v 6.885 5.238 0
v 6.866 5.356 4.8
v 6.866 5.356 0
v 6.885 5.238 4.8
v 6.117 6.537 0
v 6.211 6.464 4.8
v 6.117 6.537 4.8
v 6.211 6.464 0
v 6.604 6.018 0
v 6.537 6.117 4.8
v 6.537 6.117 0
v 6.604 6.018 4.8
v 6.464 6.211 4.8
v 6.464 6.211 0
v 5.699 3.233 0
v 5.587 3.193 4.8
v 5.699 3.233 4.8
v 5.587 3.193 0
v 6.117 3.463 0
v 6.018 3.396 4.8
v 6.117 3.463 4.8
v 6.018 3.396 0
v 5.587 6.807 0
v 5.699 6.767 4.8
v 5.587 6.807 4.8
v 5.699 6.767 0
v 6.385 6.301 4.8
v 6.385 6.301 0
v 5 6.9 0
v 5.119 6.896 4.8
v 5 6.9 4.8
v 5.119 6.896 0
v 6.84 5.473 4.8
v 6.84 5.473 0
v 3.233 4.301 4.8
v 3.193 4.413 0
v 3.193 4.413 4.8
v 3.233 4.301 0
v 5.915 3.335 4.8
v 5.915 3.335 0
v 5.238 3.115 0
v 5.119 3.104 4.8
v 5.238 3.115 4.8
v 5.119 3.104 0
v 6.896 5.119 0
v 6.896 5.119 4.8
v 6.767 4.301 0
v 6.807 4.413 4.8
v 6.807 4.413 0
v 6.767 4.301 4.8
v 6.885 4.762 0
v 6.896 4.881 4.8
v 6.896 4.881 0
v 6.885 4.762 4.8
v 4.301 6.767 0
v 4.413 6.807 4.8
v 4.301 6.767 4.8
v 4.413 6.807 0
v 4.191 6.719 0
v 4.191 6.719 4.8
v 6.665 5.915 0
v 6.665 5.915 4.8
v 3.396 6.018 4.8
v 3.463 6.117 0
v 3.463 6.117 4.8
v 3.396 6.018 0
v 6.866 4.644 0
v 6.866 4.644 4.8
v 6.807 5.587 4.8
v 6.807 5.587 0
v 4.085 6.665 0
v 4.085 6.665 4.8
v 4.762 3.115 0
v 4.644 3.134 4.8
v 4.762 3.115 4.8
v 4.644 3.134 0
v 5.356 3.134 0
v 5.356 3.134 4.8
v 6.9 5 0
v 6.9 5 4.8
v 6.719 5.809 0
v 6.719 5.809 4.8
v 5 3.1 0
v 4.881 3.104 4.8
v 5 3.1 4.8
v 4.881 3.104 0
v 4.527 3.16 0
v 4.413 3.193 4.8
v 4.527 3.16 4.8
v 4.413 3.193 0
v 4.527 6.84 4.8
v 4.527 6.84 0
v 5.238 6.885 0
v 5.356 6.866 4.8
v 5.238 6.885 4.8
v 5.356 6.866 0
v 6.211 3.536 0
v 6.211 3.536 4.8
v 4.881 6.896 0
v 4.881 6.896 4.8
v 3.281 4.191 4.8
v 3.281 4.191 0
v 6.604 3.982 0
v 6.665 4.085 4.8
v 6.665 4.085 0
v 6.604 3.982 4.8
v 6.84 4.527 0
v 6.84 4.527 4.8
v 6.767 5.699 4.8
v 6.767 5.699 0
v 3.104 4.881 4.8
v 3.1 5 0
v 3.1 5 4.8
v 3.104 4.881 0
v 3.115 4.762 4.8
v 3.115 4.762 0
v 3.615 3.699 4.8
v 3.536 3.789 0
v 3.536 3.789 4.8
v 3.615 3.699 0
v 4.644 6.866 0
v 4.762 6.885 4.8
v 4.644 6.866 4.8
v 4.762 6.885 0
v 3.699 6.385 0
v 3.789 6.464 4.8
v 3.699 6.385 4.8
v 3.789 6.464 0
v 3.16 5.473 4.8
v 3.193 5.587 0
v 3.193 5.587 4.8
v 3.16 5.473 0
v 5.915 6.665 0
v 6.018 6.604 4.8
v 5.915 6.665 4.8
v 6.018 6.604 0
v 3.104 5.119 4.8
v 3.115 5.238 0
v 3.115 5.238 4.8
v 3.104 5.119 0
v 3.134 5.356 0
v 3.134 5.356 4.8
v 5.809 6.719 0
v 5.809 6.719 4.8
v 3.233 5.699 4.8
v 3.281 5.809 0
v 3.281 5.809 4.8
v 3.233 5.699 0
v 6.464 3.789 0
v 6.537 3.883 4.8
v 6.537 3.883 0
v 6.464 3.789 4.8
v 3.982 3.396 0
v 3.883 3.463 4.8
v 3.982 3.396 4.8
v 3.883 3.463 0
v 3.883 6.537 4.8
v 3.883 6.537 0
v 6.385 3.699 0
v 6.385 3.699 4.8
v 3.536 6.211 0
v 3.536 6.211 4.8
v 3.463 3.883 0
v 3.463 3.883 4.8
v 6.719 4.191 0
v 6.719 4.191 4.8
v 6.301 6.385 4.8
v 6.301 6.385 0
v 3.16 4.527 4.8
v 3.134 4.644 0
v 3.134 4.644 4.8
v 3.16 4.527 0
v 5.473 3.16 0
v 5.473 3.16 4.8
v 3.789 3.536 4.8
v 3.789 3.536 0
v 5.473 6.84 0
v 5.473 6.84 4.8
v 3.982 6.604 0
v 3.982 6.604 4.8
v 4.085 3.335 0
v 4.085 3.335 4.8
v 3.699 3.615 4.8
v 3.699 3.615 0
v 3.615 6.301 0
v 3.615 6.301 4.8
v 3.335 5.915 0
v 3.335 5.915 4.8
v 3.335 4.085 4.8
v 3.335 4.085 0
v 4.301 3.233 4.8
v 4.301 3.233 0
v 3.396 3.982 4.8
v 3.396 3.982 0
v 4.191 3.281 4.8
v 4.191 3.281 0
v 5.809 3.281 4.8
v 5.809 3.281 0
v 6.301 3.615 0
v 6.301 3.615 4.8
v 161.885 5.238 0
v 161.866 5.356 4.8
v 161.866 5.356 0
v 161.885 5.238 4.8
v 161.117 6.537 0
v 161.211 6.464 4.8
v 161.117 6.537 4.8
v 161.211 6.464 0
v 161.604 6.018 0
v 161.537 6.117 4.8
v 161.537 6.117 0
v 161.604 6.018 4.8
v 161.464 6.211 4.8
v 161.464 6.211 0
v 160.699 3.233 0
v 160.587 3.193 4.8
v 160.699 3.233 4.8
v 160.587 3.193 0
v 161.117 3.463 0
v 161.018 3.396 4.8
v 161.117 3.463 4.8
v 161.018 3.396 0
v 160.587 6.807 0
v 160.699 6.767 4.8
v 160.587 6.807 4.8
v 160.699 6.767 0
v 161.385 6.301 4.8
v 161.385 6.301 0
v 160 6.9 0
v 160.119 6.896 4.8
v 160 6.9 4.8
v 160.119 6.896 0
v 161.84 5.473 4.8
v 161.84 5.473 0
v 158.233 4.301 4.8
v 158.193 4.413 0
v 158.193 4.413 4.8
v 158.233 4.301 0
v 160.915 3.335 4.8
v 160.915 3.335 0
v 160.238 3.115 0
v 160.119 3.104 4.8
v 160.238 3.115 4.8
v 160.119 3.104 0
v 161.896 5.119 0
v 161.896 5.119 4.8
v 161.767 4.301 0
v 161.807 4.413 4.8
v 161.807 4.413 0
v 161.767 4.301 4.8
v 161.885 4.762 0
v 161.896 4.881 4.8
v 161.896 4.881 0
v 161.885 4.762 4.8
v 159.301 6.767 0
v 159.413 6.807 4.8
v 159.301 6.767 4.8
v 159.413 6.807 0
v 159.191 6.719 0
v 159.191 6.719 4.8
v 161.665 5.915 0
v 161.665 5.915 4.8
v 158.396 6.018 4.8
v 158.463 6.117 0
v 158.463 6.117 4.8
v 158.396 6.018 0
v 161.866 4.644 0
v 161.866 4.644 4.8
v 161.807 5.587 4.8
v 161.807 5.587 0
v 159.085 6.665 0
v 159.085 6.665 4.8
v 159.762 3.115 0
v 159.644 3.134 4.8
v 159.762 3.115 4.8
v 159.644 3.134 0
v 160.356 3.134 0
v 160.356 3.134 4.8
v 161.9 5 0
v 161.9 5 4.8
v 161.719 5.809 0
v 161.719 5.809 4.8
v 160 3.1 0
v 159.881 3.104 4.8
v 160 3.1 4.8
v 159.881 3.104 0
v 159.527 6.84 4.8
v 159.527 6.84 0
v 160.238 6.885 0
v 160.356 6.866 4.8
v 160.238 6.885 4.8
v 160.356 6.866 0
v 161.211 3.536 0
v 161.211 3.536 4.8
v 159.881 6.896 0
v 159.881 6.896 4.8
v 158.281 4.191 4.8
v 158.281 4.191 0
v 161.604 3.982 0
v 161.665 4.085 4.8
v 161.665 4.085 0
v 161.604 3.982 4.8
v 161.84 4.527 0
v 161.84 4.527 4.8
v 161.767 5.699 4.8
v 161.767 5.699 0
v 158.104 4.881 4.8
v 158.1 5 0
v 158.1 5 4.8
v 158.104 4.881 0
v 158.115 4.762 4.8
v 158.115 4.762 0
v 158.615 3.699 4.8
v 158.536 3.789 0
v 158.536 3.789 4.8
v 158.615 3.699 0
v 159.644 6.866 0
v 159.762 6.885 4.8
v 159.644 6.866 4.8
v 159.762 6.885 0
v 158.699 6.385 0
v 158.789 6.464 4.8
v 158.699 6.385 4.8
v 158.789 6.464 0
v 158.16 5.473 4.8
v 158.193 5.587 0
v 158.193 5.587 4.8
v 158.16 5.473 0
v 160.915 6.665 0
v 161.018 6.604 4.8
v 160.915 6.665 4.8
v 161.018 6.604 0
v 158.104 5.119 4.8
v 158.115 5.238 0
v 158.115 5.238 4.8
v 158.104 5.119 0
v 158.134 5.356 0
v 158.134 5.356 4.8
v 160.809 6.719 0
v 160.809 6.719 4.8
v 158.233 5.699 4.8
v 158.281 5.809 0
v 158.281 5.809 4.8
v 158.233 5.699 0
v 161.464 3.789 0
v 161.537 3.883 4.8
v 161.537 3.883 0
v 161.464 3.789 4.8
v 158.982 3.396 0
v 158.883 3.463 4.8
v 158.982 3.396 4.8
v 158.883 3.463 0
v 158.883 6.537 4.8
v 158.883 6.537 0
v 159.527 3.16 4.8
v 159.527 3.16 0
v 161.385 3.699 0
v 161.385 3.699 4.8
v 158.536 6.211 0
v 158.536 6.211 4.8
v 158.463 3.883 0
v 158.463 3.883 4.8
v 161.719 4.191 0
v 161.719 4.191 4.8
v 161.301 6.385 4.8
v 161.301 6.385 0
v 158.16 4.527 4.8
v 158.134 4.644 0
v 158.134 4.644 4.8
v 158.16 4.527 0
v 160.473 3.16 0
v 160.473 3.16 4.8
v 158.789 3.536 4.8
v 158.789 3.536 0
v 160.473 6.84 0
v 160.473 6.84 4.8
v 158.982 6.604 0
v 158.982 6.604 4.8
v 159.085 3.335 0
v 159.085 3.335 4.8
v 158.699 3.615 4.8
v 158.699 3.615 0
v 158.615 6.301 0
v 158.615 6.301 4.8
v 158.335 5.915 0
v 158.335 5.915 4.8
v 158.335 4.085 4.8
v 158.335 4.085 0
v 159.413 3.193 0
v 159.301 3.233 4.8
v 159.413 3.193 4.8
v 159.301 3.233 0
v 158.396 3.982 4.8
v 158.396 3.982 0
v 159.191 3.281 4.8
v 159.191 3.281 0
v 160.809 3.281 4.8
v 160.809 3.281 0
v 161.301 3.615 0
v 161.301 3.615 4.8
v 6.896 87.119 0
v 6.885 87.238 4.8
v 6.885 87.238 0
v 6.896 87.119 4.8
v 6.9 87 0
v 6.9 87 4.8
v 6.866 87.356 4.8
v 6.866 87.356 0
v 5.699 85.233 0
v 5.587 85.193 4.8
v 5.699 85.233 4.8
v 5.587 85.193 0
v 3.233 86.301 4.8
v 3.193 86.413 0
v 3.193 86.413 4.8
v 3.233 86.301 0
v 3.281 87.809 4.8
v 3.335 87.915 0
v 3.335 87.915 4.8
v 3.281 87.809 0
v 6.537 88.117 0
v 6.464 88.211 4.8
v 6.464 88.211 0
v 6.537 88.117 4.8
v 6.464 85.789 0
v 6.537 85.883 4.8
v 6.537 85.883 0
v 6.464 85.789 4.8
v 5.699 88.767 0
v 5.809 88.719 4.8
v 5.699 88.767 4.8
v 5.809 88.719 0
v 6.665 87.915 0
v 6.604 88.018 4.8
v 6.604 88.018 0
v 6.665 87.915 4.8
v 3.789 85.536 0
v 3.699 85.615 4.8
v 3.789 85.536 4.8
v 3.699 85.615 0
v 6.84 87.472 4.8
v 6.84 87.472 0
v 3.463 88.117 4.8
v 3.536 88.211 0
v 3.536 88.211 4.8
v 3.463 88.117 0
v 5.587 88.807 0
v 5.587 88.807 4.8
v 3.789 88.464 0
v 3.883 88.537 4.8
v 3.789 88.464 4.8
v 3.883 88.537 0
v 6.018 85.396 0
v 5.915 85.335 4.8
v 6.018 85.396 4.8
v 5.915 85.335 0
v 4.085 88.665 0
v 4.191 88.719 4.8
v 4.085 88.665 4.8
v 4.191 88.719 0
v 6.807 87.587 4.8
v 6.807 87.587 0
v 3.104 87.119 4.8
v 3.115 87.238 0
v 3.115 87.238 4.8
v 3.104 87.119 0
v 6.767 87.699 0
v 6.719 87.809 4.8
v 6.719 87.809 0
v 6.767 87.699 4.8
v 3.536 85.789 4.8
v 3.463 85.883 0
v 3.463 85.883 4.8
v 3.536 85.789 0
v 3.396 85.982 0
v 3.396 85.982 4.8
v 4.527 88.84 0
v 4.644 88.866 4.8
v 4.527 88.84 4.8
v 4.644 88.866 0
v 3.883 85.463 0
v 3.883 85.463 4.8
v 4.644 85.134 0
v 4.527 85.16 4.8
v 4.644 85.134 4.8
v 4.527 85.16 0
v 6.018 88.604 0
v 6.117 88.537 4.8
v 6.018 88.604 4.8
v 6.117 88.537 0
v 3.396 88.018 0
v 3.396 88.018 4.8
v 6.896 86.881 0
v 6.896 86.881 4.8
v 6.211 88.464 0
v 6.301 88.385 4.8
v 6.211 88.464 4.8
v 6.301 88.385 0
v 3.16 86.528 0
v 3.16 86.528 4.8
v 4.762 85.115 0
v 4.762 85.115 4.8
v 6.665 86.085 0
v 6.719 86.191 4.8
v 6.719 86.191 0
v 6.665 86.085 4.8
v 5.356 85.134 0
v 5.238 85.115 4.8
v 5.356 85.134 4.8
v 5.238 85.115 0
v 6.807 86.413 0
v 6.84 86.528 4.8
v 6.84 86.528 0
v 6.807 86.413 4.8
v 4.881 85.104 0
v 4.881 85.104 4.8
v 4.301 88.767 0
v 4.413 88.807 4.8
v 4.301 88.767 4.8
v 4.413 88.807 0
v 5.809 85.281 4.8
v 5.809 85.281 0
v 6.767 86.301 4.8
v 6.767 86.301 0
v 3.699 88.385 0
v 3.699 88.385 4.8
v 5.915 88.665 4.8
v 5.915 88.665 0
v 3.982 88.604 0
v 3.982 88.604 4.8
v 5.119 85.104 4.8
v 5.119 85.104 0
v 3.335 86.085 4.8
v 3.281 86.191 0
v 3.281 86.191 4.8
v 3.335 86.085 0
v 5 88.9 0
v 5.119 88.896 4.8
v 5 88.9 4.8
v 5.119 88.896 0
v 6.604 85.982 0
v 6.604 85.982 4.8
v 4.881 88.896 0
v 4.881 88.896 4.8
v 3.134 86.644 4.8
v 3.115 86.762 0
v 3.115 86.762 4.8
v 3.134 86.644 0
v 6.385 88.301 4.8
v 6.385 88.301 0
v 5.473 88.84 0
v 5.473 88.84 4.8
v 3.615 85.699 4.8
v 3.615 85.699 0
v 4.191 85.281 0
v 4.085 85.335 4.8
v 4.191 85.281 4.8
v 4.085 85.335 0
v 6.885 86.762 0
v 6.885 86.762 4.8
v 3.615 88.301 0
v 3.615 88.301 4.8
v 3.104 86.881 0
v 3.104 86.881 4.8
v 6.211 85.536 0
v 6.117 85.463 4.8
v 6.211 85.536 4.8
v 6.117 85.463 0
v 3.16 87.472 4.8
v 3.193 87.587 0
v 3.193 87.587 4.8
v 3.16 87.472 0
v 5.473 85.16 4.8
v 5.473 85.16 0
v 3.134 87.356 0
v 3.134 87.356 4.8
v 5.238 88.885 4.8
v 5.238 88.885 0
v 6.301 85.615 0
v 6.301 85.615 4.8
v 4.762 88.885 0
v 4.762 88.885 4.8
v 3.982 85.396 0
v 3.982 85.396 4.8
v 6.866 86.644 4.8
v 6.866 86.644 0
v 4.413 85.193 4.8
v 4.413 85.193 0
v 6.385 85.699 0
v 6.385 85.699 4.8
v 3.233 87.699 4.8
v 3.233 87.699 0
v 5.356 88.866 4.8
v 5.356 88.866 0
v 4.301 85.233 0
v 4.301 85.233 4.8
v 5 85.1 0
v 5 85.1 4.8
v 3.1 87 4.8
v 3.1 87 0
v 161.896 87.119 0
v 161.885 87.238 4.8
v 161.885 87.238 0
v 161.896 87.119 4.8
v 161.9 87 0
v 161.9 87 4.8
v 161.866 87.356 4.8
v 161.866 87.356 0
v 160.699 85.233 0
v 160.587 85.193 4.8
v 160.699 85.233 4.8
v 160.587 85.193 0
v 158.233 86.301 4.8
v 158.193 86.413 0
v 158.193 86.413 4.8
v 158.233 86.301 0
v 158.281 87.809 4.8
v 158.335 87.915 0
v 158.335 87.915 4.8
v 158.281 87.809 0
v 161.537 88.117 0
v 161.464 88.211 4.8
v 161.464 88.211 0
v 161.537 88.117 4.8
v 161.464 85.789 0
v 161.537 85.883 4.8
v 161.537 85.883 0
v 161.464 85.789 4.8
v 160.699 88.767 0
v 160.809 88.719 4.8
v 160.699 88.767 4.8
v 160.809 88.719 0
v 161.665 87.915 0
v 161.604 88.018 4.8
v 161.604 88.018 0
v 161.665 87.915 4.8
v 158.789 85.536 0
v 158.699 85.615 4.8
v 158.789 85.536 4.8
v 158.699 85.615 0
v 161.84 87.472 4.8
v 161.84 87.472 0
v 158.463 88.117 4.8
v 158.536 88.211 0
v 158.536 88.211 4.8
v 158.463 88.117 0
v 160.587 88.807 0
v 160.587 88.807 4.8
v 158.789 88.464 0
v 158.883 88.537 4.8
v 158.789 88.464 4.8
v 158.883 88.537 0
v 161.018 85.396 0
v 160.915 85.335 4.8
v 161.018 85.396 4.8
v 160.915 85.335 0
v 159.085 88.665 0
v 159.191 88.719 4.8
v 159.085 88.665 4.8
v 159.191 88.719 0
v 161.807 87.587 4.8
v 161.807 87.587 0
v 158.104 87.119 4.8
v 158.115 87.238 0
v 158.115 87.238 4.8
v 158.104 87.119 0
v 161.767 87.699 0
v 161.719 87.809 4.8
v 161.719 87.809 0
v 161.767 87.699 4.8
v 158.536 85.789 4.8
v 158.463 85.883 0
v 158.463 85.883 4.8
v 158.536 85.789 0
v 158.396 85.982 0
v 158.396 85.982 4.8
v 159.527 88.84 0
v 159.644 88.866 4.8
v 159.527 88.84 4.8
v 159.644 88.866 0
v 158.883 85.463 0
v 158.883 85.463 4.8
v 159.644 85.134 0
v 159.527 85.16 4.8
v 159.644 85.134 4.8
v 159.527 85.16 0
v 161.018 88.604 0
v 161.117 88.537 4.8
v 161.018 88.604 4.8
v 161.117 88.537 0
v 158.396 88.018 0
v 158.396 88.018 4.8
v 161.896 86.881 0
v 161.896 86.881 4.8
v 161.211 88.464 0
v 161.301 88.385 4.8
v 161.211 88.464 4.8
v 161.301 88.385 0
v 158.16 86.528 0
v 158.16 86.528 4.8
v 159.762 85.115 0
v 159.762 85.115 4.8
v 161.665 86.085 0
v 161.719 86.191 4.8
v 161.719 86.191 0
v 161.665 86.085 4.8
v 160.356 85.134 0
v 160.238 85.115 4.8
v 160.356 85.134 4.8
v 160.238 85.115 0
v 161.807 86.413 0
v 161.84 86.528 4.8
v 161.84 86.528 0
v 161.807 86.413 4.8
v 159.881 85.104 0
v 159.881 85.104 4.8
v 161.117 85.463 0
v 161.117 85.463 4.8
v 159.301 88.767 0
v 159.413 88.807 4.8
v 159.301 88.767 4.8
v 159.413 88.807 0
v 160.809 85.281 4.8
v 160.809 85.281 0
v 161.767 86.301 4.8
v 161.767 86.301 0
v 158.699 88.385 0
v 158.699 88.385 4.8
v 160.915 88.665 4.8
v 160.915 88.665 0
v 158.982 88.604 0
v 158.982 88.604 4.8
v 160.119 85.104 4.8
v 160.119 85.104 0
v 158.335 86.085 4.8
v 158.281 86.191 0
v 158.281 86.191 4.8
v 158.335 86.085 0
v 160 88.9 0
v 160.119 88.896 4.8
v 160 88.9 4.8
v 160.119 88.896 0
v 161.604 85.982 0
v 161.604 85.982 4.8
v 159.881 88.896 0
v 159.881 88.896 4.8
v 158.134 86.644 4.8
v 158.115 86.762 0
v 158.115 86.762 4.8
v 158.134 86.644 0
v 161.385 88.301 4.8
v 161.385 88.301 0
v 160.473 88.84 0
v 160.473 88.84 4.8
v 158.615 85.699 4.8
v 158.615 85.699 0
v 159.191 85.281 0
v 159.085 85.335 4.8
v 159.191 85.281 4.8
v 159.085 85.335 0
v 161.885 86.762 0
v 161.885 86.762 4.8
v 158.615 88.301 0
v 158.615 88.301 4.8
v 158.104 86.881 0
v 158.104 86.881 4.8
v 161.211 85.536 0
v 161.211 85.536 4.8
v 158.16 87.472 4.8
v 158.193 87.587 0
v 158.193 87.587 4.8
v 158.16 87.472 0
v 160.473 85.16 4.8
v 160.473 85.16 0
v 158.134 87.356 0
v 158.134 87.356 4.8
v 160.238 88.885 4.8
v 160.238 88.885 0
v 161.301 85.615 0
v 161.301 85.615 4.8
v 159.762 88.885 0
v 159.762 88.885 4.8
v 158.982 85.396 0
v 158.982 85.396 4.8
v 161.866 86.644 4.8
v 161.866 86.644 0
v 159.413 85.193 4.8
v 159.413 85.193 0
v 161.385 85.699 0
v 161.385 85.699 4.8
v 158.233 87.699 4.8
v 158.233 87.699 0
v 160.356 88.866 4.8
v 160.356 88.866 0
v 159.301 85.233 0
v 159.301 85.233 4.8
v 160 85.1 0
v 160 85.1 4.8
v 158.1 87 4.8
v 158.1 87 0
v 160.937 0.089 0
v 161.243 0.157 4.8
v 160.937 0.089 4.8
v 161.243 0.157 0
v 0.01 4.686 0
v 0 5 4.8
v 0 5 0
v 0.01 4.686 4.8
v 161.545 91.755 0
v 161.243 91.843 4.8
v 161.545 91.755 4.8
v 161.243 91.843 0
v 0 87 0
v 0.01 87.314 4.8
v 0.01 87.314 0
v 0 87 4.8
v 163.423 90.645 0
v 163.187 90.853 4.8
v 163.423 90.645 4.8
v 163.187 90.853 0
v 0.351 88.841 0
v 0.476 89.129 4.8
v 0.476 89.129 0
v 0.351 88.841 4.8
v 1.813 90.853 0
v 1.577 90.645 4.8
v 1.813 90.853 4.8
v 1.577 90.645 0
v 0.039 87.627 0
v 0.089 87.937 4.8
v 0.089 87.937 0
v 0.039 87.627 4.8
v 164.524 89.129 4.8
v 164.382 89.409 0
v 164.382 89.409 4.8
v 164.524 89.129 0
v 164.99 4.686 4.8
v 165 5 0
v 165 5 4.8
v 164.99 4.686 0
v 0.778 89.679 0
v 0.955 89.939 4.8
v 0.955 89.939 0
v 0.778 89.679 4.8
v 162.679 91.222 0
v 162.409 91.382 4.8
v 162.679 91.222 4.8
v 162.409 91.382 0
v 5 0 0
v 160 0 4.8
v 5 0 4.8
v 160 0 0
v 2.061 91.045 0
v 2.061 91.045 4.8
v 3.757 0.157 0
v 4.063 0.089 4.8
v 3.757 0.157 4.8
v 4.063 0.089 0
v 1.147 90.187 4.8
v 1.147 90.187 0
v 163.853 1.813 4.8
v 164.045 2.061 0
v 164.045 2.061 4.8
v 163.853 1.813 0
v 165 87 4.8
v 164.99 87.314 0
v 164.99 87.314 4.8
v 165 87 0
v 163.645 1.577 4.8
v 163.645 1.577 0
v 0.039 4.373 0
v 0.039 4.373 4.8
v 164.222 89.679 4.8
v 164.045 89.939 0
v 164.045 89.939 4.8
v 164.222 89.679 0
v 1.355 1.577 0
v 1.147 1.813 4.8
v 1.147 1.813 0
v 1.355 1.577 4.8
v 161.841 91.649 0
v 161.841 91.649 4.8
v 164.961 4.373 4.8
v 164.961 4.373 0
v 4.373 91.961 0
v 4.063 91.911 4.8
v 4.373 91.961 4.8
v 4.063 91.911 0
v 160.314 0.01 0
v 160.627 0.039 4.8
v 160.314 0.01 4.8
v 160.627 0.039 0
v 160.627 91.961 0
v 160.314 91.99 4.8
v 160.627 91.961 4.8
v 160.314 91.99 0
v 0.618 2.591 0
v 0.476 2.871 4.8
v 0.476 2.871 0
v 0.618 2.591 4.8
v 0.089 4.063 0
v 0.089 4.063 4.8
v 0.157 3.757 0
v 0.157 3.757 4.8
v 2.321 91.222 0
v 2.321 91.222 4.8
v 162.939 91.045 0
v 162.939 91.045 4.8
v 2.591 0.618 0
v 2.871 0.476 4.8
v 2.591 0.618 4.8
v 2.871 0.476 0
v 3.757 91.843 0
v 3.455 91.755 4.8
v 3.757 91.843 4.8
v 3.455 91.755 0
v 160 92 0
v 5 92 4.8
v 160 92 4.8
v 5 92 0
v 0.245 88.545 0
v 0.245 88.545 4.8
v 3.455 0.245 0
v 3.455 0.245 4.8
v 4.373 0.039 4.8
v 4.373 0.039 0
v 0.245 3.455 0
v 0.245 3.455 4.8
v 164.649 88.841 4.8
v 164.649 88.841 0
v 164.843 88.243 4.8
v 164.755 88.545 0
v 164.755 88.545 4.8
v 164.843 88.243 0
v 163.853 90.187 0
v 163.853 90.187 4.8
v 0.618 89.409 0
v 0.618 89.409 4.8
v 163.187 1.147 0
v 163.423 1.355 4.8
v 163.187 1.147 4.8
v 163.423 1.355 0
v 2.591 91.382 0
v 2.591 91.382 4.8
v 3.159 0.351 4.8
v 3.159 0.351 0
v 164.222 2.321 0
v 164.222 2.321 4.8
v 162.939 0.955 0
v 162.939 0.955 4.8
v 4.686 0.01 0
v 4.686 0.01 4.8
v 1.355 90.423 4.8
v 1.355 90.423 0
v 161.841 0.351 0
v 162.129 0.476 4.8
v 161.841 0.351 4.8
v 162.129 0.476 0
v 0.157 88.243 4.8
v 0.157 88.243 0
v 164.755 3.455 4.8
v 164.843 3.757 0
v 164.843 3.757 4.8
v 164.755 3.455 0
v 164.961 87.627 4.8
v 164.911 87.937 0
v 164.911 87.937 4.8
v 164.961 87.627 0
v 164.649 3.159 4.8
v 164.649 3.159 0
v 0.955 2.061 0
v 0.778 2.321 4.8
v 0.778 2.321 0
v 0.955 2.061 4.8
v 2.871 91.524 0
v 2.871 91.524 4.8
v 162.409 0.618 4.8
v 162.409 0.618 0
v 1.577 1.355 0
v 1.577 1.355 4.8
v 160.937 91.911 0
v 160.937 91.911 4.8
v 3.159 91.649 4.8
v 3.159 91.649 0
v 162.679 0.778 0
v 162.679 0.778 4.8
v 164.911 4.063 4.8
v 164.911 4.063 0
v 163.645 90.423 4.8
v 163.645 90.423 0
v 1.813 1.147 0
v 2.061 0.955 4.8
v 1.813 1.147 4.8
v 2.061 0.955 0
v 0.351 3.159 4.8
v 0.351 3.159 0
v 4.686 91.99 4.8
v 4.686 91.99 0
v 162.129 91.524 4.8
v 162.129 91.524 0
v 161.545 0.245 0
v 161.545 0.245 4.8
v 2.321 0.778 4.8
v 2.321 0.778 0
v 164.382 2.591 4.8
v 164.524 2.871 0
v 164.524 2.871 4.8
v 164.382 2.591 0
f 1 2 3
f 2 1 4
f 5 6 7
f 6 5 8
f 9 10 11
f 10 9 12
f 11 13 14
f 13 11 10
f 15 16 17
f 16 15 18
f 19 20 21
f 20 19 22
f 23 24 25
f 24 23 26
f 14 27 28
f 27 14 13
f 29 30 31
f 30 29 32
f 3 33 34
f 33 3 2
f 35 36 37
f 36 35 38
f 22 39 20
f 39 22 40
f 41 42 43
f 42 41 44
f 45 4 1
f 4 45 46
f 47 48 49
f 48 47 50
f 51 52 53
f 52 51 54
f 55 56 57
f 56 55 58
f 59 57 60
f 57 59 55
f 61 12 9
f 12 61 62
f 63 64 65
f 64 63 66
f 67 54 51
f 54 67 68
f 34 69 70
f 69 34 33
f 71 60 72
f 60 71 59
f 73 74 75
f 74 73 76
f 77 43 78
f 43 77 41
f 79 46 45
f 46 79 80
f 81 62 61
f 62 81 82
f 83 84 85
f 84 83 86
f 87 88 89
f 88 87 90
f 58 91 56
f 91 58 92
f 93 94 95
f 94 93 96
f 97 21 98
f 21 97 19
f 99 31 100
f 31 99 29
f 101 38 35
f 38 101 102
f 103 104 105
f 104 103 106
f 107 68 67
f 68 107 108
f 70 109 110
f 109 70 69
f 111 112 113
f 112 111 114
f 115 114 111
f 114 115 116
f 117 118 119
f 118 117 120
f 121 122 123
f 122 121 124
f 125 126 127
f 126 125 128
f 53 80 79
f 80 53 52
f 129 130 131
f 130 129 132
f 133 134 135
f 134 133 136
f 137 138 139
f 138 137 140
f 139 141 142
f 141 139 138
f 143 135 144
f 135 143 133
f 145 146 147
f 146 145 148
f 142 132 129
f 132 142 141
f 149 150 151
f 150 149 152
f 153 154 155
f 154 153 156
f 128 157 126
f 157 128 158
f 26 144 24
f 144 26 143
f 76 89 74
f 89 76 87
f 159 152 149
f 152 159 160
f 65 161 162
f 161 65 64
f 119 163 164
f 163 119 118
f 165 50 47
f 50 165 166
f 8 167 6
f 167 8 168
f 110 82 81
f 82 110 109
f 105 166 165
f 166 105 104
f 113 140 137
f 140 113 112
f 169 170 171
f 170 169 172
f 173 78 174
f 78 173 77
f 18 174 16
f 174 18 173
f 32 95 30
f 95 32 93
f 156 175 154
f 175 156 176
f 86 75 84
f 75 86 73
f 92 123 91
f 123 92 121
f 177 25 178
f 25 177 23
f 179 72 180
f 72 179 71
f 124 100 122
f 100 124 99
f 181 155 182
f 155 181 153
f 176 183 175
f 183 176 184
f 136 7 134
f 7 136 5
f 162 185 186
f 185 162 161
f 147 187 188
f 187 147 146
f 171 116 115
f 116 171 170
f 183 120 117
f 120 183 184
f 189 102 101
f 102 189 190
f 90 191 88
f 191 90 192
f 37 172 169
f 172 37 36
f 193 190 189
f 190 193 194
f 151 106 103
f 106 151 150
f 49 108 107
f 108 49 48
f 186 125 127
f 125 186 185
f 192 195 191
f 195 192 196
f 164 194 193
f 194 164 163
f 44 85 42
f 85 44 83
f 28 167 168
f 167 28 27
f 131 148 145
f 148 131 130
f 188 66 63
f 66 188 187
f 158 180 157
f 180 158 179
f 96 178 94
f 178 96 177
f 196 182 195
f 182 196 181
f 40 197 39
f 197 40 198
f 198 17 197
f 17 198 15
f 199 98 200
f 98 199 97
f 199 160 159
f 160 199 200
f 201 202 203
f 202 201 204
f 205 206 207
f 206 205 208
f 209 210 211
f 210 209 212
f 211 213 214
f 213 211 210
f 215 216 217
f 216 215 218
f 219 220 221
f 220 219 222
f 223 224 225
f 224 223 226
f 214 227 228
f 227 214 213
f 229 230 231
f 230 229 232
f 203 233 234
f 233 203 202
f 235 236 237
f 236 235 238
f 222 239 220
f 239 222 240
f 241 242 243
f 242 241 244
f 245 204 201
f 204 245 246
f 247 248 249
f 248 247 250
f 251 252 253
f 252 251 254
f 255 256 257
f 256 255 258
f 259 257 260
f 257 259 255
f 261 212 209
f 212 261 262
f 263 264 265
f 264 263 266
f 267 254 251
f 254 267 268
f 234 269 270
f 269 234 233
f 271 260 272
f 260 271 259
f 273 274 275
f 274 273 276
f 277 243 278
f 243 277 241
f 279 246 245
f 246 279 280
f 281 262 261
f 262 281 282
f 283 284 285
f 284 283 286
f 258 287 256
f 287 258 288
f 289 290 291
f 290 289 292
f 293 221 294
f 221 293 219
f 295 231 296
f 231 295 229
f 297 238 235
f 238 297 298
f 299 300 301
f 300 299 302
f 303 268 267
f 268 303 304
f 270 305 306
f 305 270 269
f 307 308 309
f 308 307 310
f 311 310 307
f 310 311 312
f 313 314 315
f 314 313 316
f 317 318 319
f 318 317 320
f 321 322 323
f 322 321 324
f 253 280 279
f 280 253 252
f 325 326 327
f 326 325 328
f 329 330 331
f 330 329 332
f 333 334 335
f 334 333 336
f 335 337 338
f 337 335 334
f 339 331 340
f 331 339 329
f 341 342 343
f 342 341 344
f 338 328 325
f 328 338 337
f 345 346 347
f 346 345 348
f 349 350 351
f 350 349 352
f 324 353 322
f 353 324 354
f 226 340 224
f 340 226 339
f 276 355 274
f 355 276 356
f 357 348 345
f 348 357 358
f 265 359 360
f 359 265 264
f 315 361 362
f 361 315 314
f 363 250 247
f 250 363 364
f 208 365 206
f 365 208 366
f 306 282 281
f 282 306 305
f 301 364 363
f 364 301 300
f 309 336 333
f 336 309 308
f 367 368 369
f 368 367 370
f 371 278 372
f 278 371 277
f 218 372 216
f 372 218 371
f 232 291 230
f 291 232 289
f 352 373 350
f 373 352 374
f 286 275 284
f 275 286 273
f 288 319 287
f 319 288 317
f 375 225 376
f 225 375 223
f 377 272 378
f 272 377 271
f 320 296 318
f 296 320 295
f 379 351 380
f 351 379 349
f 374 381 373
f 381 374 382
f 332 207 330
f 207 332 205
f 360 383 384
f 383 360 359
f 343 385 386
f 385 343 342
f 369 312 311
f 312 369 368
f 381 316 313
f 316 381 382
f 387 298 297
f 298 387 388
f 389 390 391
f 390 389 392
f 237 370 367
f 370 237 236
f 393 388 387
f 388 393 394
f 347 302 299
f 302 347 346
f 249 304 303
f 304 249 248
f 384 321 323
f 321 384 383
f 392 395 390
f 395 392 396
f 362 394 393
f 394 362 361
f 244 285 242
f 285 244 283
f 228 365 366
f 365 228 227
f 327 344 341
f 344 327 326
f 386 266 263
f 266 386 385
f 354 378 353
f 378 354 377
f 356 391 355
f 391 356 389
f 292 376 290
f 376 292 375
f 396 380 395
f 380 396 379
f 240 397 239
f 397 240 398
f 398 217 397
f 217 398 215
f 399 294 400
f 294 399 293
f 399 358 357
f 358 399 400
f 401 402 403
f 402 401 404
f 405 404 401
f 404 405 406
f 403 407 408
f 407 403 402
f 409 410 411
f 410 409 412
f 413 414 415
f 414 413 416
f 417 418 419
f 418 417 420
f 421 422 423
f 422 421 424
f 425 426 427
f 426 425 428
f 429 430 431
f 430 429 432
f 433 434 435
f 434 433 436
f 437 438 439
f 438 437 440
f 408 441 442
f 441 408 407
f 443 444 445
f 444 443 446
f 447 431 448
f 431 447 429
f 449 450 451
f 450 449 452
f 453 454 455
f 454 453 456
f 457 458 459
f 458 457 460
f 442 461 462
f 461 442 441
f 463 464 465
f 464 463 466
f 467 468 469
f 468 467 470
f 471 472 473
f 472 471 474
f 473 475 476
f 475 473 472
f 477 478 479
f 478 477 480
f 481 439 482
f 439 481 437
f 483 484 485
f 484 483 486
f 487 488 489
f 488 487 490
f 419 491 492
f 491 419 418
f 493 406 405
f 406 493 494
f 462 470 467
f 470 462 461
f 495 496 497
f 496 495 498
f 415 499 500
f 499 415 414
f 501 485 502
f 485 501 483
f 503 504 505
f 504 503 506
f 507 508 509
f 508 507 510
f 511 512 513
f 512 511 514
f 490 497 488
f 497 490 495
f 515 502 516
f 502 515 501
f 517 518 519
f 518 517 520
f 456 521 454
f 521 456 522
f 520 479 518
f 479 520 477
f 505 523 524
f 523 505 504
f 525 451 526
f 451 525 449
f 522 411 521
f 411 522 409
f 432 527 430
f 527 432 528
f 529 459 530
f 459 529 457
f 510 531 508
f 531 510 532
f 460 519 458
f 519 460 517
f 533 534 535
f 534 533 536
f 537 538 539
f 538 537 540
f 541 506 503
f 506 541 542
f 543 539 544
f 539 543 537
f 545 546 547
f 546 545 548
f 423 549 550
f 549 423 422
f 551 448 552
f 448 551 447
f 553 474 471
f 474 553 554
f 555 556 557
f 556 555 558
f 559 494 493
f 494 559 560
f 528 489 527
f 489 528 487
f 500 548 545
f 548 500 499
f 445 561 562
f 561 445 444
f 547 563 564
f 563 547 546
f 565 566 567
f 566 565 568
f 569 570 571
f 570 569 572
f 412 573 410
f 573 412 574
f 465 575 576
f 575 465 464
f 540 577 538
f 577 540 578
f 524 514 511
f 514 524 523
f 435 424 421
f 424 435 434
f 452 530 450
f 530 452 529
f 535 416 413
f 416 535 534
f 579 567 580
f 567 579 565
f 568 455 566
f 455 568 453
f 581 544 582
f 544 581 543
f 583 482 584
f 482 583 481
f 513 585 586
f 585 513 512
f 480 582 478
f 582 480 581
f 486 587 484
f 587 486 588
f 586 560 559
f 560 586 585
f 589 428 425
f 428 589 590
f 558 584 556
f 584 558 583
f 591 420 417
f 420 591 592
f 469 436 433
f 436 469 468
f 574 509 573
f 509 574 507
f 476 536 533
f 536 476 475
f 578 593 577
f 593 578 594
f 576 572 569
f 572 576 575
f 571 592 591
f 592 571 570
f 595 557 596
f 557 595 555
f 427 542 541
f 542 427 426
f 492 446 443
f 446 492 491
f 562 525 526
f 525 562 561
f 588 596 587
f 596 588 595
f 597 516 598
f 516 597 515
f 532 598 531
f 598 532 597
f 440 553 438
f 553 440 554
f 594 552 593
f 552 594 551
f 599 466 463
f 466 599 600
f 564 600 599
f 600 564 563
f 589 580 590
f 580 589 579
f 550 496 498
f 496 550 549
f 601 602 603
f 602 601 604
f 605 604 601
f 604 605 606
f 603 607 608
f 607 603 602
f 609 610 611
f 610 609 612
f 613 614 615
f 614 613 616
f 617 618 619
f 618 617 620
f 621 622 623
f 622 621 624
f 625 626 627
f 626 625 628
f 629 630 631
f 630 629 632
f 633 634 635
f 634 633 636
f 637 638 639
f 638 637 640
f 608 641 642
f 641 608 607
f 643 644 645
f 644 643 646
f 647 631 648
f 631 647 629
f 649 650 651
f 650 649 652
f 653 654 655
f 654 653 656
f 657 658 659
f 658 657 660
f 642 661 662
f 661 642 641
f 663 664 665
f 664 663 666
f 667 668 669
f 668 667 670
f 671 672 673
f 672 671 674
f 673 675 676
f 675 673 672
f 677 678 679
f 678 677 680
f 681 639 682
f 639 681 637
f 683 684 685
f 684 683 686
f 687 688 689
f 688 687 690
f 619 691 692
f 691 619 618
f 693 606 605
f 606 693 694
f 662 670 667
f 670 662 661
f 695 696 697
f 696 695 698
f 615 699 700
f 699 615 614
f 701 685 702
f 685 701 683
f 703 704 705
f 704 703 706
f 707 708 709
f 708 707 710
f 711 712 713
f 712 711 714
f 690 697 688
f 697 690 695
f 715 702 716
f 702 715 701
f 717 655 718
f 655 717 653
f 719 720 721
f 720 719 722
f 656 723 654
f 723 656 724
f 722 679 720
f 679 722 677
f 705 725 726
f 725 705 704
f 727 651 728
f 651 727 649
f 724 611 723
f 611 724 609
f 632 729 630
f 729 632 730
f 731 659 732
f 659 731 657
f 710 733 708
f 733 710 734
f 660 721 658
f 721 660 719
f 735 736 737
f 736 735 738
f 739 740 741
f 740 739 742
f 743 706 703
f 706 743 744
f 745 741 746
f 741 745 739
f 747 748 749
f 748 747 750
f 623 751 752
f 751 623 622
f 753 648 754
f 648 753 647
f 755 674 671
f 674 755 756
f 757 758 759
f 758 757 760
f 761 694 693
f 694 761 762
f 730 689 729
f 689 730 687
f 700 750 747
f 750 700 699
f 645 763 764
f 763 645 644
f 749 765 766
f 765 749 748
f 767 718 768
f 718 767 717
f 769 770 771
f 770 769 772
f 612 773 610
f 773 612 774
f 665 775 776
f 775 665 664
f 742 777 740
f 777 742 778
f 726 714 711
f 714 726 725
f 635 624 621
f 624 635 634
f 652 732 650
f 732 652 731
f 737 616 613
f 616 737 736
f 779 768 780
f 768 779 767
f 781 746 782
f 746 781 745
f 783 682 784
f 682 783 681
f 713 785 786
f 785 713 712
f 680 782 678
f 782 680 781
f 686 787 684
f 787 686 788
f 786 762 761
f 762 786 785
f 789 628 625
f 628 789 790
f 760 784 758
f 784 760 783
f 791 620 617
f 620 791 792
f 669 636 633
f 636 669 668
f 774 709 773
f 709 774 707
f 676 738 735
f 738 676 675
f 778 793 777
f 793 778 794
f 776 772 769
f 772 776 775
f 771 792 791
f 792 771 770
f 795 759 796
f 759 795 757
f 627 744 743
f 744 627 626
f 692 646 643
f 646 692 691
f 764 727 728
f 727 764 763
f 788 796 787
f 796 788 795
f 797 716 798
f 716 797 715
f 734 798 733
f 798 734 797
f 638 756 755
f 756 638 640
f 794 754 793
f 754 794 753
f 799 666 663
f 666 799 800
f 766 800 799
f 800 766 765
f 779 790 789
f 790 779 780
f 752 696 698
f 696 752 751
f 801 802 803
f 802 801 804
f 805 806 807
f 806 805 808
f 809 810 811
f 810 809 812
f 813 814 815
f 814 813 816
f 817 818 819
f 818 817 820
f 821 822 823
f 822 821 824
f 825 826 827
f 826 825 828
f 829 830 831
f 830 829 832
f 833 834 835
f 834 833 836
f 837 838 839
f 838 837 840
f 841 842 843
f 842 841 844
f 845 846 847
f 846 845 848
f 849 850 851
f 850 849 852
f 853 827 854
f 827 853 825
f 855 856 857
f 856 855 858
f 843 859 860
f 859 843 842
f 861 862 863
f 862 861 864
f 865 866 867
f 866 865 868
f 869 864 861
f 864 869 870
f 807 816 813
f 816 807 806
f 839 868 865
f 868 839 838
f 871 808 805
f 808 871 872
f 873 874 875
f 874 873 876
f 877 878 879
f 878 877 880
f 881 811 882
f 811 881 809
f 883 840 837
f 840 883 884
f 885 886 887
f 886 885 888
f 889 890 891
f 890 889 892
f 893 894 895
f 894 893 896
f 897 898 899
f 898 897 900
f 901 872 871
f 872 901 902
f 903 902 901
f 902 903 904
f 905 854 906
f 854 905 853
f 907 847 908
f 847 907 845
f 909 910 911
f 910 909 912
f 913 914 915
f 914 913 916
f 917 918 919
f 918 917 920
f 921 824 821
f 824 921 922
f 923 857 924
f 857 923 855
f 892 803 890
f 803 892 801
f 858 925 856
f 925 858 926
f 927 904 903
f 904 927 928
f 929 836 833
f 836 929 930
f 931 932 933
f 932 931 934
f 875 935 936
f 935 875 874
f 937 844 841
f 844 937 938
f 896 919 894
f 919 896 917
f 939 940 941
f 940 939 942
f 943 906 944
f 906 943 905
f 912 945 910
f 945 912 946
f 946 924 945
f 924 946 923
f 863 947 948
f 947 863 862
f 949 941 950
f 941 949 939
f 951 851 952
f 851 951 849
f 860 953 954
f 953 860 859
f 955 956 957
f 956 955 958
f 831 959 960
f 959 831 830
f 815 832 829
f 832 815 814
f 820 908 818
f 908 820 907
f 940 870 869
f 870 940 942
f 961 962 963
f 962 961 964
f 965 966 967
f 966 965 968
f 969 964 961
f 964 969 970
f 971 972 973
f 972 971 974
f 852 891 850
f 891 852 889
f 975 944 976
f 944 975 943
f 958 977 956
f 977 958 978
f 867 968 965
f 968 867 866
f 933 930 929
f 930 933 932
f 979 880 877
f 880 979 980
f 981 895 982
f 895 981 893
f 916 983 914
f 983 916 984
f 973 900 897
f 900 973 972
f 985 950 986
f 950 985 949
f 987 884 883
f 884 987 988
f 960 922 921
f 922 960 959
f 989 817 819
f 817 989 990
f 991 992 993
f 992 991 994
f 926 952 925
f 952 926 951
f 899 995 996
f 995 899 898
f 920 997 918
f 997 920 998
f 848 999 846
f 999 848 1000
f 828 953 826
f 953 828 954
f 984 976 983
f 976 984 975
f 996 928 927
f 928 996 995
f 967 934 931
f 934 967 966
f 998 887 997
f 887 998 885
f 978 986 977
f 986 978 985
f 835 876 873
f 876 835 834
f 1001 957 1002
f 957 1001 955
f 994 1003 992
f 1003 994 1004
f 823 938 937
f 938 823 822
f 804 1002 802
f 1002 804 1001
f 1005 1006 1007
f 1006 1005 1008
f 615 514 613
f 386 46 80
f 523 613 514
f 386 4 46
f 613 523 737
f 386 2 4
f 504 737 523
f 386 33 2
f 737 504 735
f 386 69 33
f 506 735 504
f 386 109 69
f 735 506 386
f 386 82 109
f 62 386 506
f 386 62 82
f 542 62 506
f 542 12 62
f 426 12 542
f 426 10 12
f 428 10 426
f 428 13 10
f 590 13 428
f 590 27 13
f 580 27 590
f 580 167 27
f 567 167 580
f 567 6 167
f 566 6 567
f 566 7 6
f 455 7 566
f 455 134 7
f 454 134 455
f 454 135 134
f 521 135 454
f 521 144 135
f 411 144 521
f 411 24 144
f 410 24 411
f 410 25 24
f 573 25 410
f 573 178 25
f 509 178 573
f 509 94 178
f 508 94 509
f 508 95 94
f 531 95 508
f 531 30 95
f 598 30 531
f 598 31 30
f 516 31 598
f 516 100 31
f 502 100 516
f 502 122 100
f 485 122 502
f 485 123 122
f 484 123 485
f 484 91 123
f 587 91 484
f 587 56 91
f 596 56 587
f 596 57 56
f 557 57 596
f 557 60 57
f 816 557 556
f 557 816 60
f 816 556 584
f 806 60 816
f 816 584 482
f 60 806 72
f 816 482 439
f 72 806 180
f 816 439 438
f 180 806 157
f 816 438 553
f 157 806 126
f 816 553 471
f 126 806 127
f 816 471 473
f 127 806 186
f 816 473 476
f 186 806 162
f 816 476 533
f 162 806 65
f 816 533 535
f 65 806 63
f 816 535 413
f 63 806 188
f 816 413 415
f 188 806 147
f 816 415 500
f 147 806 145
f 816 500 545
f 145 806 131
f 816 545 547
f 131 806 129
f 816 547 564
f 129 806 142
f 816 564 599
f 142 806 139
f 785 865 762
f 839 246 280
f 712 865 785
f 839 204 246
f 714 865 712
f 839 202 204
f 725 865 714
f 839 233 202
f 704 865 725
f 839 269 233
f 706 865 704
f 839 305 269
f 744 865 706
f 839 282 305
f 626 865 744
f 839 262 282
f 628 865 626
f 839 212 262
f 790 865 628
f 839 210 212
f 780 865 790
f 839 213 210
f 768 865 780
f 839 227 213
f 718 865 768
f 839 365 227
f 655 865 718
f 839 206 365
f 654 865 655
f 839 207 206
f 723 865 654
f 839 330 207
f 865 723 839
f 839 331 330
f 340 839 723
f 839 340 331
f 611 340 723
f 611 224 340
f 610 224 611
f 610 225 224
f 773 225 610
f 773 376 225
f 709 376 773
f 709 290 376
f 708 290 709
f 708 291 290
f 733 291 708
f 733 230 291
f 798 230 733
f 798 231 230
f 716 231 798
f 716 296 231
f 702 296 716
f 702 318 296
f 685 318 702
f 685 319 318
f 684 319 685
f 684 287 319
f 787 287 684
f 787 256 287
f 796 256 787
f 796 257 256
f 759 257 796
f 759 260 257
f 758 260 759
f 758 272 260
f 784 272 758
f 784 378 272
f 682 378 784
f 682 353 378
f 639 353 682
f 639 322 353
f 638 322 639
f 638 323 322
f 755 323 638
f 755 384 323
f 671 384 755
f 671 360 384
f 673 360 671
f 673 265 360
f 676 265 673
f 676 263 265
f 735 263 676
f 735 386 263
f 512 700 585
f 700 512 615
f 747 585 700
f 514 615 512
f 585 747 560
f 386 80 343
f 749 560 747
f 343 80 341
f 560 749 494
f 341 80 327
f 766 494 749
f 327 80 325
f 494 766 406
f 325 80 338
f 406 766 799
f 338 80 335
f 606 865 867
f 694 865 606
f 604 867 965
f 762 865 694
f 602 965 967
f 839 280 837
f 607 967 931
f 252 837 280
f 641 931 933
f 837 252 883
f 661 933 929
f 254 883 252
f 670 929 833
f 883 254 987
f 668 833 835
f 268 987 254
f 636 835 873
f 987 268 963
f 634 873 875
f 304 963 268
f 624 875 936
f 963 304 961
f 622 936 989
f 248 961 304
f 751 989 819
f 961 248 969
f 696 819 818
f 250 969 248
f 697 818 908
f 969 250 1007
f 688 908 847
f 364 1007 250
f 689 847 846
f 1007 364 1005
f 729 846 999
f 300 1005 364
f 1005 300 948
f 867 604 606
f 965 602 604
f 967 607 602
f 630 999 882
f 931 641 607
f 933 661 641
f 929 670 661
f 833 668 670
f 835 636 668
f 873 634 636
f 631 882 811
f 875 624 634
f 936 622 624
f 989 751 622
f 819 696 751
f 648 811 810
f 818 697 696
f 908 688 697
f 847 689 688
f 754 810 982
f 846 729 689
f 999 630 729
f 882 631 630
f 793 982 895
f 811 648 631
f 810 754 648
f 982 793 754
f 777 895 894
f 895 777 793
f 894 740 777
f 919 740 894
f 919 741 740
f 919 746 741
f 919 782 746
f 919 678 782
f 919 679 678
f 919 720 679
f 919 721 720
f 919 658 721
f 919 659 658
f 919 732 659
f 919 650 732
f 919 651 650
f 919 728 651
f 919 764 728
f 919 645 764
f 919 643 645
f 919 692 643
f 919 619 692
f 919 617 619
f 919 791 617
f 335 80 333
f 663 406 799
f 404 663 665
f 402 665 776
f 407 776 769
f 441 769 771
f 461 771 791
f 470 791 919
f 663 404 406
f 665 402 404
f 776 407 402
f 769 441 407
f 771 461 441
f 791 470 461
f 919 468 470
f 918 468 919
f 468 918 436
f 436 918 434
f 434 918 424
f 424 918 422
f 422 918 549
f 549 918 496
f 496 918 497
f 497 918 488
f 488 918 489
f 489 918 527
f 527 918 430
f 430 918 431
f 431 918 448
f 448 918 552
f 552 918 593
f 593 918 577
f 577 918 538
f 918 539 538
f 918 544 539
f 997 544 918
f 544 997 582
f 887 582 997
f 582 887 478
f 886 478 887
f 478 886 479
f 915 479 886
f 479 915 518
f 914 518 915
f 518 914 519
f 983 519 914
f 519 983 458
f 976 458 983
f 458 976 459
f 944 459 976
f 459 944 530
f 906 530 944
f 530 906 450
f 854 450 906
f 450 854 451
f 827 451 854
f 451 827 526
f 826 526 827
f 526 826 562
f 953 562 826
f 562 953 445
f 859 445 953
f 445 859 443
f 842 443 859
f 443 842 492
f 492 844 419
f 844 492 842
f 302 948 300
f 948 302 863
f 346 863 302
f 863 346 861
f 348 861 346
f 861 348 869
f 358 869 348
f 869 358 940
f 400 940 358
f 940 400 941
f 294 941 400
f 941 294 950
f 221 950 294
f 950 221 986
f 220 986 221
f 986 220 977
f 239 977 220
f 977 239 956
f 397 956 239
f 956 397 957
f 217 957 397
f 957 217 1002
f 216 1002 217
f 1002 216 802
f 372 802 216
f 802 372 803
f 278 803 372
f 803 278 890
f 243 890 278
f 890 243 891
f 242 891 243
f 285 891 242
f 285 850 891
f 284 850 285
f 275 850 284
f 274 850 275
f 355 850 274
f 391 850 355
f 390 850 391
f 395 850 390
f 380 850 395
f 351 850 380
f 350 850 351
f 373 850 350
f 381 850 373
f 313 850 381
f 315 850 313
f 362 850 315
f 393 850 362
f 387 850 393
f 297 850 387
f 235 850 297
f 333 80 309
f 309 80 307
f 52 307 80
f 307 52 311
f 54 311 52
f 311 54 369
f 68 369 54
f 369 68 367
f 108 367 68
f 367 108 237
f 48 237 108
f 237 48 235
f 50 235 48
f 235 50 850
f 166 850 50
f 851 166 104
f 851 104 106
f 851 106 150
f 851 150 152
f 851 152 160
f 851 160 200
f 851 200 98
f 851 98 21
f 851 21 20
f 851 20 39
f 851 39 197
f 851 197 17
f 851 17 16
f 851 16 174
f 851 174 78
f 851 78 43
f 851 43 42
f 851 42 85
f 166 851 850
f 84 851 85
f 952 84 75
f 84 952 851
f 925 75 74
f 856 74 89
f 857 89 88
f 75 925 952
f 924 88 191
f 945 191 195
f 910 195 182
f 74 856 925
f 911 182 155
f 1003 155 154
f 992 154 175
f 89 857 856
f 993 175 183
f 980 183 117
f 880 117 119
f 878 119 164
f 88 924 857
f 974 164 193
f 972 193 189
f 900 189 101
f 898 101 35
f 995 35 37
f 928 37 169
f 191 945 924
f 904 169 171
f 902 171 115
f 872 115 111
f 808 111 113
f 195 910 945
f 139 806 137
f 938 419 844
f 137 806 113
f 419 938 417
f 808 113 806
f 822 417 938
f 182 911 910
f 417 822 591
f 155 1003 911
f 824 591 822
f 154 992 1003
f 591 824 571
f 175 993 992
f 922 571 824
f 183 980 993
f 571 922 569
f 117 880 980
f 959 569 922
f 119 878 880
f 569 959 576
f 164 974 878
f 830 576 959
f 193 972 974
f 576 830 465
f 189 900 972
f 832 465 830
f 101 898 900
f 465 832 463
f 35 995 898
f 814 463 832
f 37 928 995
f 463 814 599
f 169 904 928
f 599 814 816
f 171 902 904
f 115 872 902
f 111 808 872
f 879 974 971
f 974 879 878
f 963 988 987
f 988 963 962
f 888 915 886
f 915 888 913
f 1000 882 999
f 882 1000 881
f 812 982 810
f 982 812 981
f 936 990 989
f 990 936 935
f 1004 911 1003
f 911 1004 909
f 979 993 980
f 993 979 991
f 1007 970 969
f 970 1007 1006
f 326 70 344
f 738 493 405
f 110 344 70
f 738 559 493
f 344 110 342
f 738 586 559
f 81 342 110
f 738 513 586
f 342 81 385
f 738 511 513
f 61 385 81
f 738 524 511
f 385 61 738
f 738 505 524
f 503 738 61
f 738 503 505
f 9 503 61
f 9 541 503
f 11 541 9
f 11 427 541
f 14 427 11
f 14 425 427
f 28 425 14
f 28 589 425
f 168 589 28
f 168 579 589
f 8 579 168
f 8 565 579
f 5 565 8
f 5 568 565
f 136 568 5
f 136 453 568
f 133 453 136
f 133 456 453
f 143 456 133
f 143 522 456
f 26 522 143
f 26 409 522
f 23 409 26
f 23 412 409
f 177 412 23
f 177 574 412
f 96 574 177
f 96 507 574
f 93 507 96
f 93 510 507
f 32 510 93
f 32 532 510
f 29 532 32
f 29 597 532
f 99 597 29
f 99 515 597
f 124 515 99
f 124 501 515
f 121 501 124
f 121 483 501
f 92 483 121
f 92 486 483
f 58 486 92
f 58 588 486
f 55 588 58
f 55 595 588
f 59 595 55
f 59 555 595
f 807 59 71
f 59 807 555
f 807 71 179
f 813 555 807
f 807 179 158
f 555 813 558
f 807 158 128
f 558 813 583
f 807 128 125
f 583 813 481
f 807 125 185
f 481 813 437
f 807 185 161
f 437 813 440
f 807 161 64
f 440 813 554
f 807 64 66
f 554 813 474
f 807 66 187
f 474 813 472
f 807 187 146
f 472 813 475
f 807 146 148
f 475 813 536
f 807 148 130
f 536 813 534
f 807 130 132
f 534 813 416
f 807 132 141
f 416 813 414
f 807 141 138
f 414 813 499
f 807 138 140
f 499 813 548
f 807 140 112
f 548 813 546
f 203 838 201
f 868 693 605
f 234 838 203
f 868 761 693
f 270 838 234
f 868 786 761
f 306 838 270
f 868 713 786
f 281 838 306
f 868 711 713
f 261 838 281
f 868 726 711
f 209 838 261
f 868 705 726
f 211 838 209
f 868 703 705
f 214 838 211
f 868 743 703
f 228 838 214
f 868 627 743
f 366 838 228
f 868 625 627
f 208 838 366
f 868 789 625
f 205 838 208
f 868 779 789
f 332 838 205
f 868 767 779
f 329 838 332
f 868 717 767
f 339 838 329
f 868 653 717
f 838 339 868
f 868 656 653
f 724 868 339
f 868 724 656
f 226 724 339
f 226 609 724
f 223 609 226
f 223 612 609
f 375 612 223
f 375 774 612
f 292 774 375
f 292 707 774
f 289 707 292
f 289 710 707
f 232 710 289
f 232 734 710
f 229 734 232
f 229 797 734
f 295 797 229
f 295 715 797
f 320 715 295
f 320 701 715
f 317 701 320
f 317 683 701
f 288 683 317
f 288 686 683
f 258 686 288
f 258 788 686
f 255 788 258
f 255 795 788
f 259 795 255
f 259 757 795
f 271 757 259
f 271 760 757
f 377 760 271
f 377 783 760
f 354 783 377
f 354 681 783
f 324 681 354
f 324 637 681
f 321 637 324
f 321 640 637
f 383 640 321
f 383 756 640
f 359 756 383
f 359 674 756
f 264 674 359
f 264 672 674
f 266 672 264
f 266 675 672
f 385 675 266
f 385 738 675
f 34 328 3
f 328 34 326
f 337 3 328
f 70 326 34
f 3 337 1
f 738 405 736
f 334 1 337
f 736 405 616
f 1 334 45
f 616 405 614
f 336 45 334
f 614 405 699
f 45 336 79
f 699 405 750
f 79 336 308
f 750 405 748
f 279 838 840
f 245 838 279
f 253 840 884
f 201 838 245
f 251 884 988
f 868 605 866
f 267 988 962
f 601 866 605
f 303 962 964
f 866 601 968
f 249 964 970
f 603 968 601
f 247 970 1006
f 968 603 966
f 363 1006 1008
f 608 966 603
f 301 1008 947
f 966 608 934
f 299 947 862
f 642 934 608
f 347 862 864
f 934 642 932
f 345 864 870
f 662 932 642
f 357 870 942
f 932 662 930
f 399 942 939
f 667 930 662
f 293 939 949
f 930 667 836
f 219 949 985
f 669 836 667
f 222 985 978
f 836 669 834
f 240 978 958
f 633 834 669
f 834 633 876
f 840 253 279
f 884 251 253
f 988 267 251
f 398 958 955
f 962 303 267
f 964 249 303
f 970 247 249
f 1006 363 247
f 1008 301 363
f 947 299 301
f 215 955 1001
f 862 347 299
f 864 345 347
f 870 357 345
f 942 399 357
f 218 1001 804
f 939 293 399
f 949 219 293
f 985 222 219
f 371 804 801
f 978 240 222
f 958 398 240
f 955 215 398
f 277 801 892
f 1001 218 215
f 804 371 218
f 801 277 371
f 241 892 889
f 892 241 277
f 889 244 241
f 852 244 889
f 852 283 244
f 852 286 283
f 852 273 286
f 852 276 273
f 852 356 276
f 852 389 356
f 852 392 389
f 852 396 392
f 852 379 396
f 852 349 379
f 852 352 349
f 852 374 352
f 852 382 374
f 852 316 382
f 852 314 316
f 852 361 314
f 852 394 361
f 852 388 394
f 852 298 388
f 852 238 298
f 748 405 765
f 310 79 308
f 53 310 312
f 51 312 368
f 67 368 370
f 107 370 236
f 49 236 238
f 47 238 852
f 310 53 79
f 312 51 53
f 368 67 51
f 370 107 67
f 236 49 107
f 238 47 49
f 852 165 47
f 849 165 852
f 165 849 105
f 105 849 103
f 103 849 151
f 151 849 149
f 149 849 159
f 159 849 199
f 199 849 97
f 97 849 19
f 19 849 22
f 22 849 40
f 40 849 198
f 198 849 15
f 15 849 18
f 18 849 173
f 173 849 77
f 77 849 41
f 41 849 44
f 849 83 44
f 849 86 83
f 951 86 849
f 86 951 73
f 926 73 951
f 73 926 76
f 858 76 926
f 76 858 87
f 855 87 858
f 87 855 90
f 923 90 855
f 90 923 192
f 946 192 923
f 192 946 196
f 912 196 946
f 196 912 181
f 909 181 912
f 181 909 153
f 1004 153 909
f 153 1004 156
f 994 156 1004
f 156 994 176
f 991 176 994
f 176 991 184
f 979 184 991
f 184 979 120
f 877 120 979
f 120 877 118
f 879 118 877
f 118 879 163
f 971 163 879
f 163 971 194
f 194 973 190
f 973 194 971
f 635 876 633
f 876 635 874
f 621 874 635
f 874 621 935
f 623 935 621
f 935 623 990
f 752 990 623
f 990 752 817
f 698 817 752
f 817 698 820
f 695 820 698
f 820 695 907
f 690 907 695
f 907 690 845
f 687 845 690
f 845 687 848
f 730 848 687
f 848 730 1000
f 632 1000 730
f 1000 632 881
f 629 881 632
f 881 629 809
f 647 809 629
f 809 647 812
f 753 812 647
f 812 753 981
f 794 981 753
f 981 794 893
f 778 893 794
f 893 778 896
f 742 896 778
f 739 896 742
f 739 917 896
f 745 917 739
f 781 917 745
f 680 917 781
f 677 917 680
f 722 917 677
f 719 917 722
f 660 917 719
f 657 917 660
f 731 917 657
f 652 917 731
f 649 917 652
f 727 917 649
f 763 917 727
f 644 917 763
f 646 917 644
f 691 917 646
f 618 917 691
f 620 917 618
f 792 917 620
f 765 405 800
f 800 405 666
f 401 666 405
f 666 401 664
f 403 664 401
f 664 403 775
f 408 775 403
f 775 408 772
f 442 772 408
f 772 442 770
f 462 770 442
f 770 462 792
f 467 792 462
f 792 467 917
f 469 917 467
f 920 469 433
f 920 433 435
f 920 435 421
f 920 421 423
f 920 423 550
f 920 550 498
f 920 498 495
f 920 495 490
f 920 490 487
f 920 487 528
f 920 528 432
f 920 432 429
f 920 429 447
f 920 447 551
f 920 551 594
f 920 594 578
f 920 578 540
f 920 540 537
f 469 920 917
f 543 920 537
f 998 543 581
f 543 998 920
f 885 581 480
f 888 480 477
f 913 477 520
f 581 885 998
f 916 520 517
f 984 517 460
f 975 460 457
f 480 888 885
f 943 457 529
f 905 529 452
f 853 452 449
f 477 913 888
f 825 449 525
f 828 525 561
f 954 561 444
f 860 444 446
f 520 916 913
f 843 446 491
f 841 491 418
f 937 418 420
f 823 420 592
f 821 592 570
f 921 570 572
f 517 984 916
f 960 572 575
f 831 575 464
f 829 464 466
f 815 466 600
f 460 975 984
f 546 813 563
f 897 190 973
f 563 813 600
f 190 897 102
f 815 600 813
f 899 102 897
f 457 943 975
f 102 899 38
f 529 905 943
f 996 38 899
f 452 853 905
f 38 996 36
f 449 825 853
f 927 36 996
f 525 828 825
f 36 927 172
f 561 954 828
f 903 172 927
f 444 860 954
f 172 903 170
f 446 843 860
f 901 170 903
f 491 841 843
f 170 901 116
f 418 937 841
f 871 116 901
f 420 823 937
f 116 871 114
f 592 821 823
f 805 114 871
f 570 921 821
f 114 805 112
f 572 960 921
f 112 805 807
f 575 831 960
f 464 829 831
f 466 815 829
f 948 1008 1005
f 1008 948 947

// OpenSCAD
// file: subpieces/rounded-pane.scad
/**
 * roundedPane
 * @name roundedPane
 * @description roundedPane
 * @type Supbiece
 * @parent 
 */
module roundedPane(
    x_y_z_coords,
    r1,
    r2,
    center = false,
    $fn = $fn
) {
    x = x_y_z_coords[0];
    y = x_y_z_coords[1];
    z = x_y_z_coords[2];

    r = (r1 < r2) ? r2 : r1;

    module _pane() {
        hull() {
            translate([r,r,0]) {
                cylinder(z, r1 = r1, r2 = r2);
            }

            translate([x-r,r,0]) {
                cylinder(z, r1 = r1, r2 = r2);
            }

            translate([r,y-r,0]) {
                cylinder(z, r1 = r1, r2 = r2);
            }

            translate([x-r,y-r,0]) {
                cylinder(z, r1 = r1, r2 = r2);
            }
        }
    }

    if (center) {
        translate([-x / 2, -y / 2, -z / 2])
            _pane();
    } else {
        _pane();
    }

}
// file: ../libraries/commons.scad
/**
 * forEachCoord
 * Wrapper to apply child on each element
 */
module forEachCoord(coords_list) {
    for (coords = coords_list)
        translate(
            [
                coords[0] == undef ? 0 : coords[0],
                coords[1] == undef ? 0 : coords[1],
                coords[2] == undef ? 0 : coords[2],
            ]
        )
            children();
}
// file: ../configurations/global.scad
// gold_number = 1.618;

housing_facades_throws_diameter = 3.8;

// external size
case_external_x_size = 165;
case_external_y_size = 92;
case_external_z_size = 38;
case_external_panes_thickness = 4.8;

facade_front_round_edges_radius = 5;
facade_throws_margin = 5;

// facade corners
facade_corners_offset_lenght = 9;
facade_corners_main_x_size = 19;
facade_corners_main_y_size = 19;
facade_corners_main_thickness = 11;
facade_corners_correction_offset_length = 0.2;
facade_corners_correction_offset_thickness = 0.0;
facade_fn = 100;


// Generics
insert_throw_diameter = 4.2;
insert_throw_length = 6 + 2;


// mother board
mother_board_cny70set_x_point_coord = 10;
mother_board_cny70set_y_point_coord = 7;



// Cassette
cassette_x_size = 50;
cassette_y_size = 31;
cassette_z_size = 4.8;
cassette_round_radius = 4;

// Cassette case
cassette_case_x_size = 76.2;
cassette_case_y_size = 55.88;
cassette_case_z_size = 9;
cassette_case_round_radius = 1;

cassette_case_x_y_margin = 0.75;

cassette_case_embed_x_size = 62;
cassette_case_embed_y_size = 42;
cassette_case_embed_z_size = 4.8;
cassette_case_embed_offsets = 10;
cassette_case_embed_round_radius = 6;

cassette_case_throws_margin = 2.54 * 2;
cassette_case_throws_diameter = 3.5;
cassette_case_grip_enveloppe_diameter = 15;
cassette_case_grip_enveloppe_offset = 3;

cassette_case_cny70set_x_point_coord = mother_board_cny70set_x_point_coord;
cassette_case_cny70set_y_point_coord = mother_board_cny70set_y_point_coord;
cassette_case_cny70set_x_y_margin = 0.5;

// Front panel throw cassette case mounting 
cassette_case_embed_throw_margin = 0.5;


// Mother board joins
bolt_join_mother_board_internal_diameter = 3.5;
bolt_join_mother_board_external_diameter = 3.5 + (0.4 * 12);
bolt_join_mother_board_height = 8.5;
bolt_join_fn = 200;


// speaker facade
speaker_facade_x_size = 50;
speaker_facade_y_size = cassette_case_y_size - cassette_case_throws_margin * 2 + 7;
speaker_facade_z_size = 2;
speaker_facade_rounded_radius = 3;
speaker_facade_fixation_throws_margin = 3.5;
speaker_facade_fixation_throws_diameter = 3.5;
speaker_facade_throw_diameter = 40+1;
// 
facade_top_on_off_button_throw_diameter = 12.8;


facade_cassette_case_coords = [
    60 + 5,
    23,
];

facade_speaker_40mm_coords = [
    32 + 5,
    facade_cassette_case_coords[1] + (cassette_case_y_size / 2),
];

batteries_holder_coords = [
    8 + 5,
    20
];

volume_buttons_spacing = 20;
//volume_buttons_coords = [145,50];
volume_buttons_coords = [
    145 + 5 ,
    facade_cassette_case_coords[1] + (cassette_case_y_size / 2),
];

controller_buttons_spacing = 20;
//controller_buttons_coords = [98,14];
controller_buttons_coords = [
    facade_cassette_case_coords[0] + (cassette_case_x_size / 2),
    14
];

controller_onoff_coords = [
    32 + 5,
    14
];
// main file
include <./../configurations/global.scad>
use <./../libraries/commons.scad>

use <./subpieces/rounded-pane.scad>


 /**
 * facadeBackPiece
 * @name facadeBackPiece
 * @description Piece can be printed or CNC cutted #3DPrint, #CNC
 * @type piece
 * @parent housingComponent
 * @stl
 */
module facadeBackPiece(
    x_size = case_external_x_size,
    y_size = case_external_y_size,
    z_size = case_external_panes_thickness,
    throws_margin = facade_throws_margin,
    round_edges_radius = facade_front_round_edges_radius,
    throws_diameter = housing_facades_throws_diameter,
    $fn = facade_fn
) {
    echo(str("facadeBackPiece ", "x_size: ", x_size, " y_size: ", y_size, " z_size: ", z_size));

    difference() {
        color("BurlyWood")
            roundedPane(
                [x_size, y_size, z_size],
                r1 = round_edges_radius,
                r2 = round_edges_radius,
                center = false,
                $fn = $fn
            );

        translate([0, 0, -z_size / 2])
            forEachCoord([
                [throws_margin, throws_margin],
                [x_size - throws_margin, throws_margin],
                [throws_margin, y_size - throws_margin],
                [x_size - throws_margin, y_size - throws_margin,],
            ])
                cylinder(h = z_size * 2, d = throws_diameter, $fn = $fn);

    }
    

}

facadeBackPiece();
